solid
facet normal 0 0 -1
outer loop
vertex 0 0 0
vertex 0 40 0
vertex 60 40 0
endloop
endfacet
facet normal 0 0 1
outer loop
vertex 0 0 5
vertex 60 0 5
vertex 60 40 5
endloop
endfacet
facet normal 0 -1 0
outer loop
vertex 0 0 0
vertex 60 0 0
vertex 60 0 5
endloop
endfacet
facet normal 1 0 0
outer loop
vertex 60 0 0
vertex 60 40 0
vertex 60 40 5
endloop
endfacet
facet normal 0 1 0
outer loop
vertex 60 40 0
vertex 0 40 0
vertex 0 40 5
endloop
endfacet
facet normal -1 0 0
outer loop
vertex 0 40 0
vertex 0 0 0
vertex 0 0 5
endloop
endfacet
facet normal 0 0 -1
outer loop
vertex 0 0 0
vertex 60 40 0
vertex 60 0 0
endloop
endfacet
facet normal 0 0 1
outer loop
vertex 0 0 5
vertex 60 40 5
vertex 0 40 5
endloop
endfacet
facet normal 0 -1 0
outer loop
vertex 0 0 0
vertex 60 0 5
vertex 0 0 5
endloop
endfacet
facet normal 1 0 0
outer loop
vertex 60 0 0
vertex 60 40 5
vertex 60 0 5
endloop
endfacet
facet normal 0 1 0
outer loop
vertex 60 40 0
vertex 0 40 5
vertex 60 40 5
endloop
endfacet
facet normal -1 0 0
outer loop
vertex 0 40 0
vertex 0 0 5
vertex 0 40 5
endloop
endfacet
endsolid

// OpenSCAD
// Original MechIntel educational model. CC0-1.0. Units: mm.
// Not a standardized or load-rated component.
$fn=96;
length=60;
width=40;
height=5;
cube([length,width,height]);
